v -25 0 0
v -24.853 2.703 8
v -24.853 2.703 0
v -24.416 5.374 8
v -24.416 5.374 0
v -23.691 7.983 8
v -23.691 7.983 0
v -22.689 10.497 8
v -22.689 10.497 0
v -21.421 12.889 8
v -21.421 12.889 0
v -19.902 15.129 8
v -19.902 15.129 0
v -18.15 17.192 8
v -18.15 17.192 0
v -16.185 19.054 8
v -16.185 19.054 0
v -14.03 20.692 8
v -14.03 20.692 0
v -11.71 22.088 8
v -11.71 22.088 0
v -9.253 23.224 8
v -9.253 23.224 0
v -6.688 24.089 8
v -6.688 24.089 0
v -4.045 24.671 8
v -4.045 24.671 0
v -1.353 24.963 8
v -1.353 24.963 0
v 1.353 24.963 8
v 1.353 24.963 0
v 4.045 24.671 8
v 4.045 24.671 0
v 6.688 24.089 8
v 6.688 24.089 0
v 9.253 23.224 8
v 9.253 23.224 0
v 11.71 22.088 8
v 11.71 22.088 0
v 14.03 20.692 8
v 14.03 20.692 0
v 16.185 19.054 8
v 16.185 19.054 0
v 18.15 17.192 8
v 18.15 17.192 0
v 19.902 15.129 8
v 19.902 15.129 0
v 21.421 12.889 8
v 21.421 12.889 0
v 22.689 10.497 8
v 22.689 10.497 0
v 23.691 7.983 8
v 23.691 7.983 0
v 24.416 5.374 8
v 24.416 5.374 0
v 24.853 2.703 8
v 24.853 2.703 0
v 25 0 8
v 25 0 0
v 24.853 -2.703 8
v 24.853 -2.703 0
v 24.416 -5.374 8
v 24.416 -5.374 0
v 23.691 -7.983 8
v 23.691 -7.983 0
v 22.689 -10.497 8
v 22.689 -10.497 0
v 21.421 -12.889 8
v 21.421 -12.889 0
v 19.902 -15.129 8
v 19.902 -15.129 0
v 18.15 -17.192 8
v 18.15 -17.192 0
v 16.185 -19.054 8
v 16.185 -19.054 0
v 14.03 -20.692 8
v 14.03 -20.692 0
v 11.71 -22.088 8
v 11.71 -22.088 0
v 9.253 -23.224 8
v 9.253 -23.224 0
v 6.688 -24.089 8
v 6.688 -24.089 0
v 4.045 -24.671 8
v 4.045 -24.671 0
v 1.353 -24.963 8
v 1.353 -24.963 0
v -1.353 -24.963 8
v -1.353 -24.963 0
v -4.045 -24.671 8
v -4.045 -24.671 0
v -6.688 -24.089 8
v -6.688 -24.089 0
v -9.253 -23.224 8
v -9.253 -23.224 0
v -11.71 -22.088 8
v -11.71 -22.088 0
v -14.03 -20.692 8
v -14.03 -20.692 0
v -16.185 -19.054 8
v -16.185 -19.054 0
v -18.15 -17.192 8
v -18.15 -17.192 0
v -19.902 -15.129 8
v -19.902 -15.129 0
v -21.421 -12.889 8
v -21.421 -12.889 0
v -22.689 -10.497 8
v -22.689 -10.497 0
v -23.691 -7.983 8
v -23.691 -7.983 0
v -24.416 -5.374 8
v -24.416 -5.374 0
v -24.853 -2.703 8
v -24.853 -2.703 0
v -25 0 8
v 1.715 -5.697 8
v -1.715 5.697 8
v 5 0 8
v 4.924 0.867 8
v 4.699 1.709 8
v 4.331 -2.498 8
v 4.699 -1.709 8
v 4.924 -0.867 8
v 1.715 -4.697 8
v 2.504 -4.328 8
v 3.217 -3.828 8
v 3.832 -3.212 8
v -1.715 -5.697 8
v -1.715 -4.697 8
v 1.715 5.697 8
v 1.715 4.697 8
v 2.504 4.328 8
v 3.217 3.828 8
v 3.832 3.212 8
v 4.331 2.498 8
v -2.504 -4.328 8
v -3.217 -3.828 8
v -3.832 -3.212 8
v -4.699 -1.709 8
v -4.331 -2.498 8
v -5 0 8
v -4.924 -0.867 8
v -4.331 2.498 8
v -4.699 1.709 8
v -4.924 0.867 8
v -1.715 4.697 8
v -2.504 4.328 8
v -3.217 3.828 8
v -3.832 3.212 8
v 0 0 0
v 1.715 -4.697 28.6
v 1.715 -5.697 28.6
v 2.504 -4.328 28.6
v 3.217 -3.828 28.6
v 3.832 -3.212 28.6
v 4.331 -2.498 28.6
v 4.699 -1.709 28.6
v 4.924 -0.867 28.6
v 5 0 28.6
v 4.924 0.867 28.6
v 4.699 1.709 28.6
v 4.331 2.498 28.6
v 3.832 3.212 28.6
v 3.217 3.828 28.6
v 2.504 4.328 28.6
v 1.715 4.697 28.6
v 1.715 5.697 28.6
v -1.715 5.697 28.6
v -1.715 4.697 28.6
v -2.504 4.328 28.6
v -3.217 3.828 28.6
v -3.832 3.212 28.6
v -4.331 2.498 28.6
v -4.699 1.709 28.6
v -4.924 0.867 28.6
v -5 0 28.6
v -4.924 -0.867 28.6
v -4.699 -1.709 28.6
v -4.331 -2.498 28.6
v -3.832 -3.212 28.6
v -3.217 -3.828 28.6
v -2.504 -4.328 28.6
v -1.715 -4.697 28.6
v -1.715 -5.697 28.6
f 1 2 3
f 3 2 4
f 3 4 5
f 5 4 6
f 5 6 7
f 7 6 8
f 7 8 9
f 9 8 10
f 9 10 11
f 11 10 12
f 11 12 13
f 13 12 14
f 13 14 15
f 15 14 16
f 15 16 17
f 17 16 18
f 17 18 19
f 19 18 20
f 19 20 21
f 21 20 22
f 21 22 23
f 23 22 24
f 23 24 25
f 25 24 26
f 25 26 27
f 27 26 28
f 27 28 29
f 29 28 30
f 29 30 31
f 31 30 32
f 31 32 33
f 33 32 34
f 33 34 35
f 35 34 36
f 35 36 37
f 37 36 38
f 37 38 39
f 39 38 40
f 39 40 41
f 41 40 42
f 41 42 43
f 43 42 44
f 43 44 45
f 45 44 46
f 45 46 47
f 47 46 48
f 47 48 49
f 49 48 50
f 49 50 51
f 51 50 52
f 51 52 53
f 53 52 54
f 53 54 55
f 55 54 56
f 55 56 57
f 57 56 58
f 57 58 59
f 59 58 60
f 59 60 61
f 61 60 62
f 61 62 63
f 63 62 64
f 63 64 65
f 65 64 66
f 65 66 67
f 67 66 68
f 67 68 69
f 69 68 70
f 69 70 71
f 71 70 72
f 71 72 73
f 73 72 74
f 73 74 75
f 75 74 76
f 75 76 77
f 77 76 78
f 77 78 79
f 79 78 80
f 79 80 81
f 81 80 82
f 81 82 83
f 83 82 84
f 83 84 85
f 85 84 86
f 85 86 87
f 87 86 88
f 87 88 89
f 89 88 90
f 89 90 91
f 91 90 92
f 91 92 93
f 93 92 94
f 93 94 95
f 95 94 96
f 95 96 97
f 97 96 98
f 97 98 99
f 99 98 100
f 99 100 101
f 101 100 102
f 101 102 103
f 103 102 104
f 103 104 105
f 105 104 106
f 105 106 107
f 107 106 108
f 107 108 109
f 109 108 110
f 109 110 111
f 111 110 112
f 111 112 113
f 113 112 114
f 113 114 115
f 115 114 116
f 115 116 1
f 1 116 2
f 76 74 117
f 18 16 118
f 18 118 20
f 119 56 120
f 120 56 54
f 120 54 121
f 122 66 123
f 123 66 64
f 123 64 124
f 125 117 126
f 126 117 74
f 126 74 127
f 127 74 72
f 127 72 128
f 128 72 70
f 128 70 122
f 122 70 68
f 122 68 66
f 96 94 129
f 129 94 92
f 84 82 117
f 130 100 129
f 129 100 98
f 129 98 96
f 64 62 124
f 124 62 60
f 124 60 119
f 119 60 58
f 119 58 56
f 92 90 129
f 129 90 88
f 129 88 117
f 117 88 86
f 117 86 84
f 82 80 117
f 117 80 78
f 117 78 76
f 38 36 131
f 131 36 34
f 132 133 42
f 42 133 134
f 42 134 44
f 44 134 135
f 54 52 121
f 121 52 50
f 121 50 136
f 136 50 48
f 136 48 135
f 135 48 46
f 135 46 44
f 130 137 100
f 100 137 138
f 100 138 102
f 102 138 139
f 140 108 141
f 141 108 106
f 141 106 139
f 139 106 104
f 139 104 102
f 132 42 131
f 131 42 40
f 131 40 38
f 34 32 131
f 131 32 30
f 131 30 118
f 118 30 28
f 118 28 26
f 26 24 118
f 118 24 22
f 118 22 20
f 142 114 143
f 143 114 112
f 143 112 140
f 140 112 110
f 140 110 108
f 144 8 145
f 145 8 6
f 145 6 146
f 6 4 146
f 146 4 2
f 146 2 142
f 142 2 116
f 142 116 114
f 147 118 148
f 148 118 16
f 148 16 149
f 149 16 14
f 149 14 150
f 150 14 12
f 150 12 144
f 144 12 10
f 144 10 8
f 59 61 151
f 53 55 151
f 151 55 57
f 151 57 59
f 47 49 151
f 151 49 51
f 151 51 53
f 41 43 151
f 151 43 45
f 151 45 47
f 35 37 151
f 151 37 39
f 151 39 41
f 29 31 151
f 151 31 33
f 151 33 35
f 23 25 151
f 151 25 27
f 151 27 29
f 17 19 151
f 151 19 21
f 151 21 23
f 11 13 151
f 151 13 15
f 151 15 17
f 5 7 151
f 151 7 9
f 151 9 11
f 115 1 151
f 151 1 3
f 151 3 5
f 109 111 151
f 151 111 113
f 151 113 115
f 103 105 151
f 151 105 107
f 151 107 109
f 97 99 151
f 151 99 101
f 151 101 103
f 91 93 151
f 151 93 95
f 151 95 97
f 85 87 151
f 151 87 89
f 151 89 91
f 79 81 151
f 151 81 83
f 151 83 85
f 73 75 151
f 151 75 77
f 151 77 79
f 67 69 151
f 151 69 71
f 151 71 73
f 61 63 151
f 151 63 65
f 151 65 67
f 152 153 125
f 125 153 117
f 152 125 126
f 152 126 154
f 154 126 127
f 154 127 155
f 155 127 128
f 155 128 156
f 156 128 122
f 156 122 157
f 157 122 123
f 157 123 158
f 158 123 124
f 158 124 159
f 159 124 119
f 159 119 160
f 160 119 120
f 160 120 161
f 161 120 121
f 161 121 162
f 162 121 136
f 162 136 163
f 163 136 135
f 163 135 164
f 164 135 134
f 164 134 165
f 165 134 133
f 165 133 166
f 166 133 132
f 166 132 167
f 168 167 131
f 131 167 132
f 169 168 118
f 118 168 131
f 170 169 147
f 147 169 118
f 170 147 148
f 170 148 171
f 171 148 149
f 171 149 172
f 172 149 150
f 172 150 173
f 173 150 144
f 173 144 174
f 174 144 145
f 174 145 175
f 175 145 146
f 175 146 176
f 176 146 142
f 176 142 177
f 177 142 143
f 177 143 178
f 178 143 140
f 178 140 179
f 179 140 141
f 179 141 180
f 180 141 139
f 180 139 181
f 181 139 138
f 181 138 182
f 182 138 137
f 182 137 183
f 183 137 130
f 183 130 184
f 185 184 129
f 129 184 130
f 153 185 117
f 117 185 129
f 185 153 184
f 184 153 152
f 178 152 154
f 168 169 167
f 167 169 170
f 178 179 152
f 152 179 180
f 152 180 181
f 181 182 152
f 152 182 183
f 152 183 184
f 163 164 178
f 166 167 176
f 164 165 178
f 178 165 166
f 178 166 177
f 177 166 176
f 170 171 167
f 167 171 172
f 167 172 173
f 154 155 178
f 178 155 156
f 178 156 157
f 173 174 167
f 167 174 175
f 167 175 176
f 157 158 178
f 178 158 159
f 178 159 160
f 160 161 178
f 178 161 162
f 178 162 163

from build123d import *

# Parameters (mm, degrees)
SKETCH1_R           = 25
BOSS_EXTRUDE1_DEPTH = 8
BOSS_EXTRUDE2_DEPTH = 20.6


with BuildPart() as part:
    # Sketch1 → Boss-Extrude1 (new body)
    with BuildSketch(Plane(origin=(0, 0, 0), x_dir=(0, 1, 0), z_dir=(0, 0, 1))):
        with Locations(Location((0, 0, 0), (0, 0, 270))):
            Circle(SKETCH1_R)
    extrude(amount=BOSS_EXTRUDE1_DEPTH)

    # Sketch2 → Boss-Extrude2 (add)
    with BuildSketch(Plane.XY.offset(8)):
        with BuildLine():
            Line((-1.715143801, 4.696624505), (-1.715143801, 5.696624505))
            Line((-1.715143801, 5.696624505), (1.715143801, 5.696624505))
            Line((1.715143801, 5.696624505), (1.715143801, 4.696624505))
            ThreePointArc((1.715143801, 4.696624505), (5, 0), (1.715143801, -4.696624505))
            Line((1.715143801, -4.696624505), (1.715143801, -5.696624505))
            Line((1.715143801, -5.696624505), (-1.715143801, -5.696624505))
            Line((-1.715143801, -5.696624505), (-1.715143801, -4.696624505))
            ThreePointArc((-1.715143801, -4.696624505), (-5, 0), (-1.715143801, 4.696624505))
        make_face()
    extrude(amount=BOSS_EXTRUDE2_DEPTH)


solid = part.part
